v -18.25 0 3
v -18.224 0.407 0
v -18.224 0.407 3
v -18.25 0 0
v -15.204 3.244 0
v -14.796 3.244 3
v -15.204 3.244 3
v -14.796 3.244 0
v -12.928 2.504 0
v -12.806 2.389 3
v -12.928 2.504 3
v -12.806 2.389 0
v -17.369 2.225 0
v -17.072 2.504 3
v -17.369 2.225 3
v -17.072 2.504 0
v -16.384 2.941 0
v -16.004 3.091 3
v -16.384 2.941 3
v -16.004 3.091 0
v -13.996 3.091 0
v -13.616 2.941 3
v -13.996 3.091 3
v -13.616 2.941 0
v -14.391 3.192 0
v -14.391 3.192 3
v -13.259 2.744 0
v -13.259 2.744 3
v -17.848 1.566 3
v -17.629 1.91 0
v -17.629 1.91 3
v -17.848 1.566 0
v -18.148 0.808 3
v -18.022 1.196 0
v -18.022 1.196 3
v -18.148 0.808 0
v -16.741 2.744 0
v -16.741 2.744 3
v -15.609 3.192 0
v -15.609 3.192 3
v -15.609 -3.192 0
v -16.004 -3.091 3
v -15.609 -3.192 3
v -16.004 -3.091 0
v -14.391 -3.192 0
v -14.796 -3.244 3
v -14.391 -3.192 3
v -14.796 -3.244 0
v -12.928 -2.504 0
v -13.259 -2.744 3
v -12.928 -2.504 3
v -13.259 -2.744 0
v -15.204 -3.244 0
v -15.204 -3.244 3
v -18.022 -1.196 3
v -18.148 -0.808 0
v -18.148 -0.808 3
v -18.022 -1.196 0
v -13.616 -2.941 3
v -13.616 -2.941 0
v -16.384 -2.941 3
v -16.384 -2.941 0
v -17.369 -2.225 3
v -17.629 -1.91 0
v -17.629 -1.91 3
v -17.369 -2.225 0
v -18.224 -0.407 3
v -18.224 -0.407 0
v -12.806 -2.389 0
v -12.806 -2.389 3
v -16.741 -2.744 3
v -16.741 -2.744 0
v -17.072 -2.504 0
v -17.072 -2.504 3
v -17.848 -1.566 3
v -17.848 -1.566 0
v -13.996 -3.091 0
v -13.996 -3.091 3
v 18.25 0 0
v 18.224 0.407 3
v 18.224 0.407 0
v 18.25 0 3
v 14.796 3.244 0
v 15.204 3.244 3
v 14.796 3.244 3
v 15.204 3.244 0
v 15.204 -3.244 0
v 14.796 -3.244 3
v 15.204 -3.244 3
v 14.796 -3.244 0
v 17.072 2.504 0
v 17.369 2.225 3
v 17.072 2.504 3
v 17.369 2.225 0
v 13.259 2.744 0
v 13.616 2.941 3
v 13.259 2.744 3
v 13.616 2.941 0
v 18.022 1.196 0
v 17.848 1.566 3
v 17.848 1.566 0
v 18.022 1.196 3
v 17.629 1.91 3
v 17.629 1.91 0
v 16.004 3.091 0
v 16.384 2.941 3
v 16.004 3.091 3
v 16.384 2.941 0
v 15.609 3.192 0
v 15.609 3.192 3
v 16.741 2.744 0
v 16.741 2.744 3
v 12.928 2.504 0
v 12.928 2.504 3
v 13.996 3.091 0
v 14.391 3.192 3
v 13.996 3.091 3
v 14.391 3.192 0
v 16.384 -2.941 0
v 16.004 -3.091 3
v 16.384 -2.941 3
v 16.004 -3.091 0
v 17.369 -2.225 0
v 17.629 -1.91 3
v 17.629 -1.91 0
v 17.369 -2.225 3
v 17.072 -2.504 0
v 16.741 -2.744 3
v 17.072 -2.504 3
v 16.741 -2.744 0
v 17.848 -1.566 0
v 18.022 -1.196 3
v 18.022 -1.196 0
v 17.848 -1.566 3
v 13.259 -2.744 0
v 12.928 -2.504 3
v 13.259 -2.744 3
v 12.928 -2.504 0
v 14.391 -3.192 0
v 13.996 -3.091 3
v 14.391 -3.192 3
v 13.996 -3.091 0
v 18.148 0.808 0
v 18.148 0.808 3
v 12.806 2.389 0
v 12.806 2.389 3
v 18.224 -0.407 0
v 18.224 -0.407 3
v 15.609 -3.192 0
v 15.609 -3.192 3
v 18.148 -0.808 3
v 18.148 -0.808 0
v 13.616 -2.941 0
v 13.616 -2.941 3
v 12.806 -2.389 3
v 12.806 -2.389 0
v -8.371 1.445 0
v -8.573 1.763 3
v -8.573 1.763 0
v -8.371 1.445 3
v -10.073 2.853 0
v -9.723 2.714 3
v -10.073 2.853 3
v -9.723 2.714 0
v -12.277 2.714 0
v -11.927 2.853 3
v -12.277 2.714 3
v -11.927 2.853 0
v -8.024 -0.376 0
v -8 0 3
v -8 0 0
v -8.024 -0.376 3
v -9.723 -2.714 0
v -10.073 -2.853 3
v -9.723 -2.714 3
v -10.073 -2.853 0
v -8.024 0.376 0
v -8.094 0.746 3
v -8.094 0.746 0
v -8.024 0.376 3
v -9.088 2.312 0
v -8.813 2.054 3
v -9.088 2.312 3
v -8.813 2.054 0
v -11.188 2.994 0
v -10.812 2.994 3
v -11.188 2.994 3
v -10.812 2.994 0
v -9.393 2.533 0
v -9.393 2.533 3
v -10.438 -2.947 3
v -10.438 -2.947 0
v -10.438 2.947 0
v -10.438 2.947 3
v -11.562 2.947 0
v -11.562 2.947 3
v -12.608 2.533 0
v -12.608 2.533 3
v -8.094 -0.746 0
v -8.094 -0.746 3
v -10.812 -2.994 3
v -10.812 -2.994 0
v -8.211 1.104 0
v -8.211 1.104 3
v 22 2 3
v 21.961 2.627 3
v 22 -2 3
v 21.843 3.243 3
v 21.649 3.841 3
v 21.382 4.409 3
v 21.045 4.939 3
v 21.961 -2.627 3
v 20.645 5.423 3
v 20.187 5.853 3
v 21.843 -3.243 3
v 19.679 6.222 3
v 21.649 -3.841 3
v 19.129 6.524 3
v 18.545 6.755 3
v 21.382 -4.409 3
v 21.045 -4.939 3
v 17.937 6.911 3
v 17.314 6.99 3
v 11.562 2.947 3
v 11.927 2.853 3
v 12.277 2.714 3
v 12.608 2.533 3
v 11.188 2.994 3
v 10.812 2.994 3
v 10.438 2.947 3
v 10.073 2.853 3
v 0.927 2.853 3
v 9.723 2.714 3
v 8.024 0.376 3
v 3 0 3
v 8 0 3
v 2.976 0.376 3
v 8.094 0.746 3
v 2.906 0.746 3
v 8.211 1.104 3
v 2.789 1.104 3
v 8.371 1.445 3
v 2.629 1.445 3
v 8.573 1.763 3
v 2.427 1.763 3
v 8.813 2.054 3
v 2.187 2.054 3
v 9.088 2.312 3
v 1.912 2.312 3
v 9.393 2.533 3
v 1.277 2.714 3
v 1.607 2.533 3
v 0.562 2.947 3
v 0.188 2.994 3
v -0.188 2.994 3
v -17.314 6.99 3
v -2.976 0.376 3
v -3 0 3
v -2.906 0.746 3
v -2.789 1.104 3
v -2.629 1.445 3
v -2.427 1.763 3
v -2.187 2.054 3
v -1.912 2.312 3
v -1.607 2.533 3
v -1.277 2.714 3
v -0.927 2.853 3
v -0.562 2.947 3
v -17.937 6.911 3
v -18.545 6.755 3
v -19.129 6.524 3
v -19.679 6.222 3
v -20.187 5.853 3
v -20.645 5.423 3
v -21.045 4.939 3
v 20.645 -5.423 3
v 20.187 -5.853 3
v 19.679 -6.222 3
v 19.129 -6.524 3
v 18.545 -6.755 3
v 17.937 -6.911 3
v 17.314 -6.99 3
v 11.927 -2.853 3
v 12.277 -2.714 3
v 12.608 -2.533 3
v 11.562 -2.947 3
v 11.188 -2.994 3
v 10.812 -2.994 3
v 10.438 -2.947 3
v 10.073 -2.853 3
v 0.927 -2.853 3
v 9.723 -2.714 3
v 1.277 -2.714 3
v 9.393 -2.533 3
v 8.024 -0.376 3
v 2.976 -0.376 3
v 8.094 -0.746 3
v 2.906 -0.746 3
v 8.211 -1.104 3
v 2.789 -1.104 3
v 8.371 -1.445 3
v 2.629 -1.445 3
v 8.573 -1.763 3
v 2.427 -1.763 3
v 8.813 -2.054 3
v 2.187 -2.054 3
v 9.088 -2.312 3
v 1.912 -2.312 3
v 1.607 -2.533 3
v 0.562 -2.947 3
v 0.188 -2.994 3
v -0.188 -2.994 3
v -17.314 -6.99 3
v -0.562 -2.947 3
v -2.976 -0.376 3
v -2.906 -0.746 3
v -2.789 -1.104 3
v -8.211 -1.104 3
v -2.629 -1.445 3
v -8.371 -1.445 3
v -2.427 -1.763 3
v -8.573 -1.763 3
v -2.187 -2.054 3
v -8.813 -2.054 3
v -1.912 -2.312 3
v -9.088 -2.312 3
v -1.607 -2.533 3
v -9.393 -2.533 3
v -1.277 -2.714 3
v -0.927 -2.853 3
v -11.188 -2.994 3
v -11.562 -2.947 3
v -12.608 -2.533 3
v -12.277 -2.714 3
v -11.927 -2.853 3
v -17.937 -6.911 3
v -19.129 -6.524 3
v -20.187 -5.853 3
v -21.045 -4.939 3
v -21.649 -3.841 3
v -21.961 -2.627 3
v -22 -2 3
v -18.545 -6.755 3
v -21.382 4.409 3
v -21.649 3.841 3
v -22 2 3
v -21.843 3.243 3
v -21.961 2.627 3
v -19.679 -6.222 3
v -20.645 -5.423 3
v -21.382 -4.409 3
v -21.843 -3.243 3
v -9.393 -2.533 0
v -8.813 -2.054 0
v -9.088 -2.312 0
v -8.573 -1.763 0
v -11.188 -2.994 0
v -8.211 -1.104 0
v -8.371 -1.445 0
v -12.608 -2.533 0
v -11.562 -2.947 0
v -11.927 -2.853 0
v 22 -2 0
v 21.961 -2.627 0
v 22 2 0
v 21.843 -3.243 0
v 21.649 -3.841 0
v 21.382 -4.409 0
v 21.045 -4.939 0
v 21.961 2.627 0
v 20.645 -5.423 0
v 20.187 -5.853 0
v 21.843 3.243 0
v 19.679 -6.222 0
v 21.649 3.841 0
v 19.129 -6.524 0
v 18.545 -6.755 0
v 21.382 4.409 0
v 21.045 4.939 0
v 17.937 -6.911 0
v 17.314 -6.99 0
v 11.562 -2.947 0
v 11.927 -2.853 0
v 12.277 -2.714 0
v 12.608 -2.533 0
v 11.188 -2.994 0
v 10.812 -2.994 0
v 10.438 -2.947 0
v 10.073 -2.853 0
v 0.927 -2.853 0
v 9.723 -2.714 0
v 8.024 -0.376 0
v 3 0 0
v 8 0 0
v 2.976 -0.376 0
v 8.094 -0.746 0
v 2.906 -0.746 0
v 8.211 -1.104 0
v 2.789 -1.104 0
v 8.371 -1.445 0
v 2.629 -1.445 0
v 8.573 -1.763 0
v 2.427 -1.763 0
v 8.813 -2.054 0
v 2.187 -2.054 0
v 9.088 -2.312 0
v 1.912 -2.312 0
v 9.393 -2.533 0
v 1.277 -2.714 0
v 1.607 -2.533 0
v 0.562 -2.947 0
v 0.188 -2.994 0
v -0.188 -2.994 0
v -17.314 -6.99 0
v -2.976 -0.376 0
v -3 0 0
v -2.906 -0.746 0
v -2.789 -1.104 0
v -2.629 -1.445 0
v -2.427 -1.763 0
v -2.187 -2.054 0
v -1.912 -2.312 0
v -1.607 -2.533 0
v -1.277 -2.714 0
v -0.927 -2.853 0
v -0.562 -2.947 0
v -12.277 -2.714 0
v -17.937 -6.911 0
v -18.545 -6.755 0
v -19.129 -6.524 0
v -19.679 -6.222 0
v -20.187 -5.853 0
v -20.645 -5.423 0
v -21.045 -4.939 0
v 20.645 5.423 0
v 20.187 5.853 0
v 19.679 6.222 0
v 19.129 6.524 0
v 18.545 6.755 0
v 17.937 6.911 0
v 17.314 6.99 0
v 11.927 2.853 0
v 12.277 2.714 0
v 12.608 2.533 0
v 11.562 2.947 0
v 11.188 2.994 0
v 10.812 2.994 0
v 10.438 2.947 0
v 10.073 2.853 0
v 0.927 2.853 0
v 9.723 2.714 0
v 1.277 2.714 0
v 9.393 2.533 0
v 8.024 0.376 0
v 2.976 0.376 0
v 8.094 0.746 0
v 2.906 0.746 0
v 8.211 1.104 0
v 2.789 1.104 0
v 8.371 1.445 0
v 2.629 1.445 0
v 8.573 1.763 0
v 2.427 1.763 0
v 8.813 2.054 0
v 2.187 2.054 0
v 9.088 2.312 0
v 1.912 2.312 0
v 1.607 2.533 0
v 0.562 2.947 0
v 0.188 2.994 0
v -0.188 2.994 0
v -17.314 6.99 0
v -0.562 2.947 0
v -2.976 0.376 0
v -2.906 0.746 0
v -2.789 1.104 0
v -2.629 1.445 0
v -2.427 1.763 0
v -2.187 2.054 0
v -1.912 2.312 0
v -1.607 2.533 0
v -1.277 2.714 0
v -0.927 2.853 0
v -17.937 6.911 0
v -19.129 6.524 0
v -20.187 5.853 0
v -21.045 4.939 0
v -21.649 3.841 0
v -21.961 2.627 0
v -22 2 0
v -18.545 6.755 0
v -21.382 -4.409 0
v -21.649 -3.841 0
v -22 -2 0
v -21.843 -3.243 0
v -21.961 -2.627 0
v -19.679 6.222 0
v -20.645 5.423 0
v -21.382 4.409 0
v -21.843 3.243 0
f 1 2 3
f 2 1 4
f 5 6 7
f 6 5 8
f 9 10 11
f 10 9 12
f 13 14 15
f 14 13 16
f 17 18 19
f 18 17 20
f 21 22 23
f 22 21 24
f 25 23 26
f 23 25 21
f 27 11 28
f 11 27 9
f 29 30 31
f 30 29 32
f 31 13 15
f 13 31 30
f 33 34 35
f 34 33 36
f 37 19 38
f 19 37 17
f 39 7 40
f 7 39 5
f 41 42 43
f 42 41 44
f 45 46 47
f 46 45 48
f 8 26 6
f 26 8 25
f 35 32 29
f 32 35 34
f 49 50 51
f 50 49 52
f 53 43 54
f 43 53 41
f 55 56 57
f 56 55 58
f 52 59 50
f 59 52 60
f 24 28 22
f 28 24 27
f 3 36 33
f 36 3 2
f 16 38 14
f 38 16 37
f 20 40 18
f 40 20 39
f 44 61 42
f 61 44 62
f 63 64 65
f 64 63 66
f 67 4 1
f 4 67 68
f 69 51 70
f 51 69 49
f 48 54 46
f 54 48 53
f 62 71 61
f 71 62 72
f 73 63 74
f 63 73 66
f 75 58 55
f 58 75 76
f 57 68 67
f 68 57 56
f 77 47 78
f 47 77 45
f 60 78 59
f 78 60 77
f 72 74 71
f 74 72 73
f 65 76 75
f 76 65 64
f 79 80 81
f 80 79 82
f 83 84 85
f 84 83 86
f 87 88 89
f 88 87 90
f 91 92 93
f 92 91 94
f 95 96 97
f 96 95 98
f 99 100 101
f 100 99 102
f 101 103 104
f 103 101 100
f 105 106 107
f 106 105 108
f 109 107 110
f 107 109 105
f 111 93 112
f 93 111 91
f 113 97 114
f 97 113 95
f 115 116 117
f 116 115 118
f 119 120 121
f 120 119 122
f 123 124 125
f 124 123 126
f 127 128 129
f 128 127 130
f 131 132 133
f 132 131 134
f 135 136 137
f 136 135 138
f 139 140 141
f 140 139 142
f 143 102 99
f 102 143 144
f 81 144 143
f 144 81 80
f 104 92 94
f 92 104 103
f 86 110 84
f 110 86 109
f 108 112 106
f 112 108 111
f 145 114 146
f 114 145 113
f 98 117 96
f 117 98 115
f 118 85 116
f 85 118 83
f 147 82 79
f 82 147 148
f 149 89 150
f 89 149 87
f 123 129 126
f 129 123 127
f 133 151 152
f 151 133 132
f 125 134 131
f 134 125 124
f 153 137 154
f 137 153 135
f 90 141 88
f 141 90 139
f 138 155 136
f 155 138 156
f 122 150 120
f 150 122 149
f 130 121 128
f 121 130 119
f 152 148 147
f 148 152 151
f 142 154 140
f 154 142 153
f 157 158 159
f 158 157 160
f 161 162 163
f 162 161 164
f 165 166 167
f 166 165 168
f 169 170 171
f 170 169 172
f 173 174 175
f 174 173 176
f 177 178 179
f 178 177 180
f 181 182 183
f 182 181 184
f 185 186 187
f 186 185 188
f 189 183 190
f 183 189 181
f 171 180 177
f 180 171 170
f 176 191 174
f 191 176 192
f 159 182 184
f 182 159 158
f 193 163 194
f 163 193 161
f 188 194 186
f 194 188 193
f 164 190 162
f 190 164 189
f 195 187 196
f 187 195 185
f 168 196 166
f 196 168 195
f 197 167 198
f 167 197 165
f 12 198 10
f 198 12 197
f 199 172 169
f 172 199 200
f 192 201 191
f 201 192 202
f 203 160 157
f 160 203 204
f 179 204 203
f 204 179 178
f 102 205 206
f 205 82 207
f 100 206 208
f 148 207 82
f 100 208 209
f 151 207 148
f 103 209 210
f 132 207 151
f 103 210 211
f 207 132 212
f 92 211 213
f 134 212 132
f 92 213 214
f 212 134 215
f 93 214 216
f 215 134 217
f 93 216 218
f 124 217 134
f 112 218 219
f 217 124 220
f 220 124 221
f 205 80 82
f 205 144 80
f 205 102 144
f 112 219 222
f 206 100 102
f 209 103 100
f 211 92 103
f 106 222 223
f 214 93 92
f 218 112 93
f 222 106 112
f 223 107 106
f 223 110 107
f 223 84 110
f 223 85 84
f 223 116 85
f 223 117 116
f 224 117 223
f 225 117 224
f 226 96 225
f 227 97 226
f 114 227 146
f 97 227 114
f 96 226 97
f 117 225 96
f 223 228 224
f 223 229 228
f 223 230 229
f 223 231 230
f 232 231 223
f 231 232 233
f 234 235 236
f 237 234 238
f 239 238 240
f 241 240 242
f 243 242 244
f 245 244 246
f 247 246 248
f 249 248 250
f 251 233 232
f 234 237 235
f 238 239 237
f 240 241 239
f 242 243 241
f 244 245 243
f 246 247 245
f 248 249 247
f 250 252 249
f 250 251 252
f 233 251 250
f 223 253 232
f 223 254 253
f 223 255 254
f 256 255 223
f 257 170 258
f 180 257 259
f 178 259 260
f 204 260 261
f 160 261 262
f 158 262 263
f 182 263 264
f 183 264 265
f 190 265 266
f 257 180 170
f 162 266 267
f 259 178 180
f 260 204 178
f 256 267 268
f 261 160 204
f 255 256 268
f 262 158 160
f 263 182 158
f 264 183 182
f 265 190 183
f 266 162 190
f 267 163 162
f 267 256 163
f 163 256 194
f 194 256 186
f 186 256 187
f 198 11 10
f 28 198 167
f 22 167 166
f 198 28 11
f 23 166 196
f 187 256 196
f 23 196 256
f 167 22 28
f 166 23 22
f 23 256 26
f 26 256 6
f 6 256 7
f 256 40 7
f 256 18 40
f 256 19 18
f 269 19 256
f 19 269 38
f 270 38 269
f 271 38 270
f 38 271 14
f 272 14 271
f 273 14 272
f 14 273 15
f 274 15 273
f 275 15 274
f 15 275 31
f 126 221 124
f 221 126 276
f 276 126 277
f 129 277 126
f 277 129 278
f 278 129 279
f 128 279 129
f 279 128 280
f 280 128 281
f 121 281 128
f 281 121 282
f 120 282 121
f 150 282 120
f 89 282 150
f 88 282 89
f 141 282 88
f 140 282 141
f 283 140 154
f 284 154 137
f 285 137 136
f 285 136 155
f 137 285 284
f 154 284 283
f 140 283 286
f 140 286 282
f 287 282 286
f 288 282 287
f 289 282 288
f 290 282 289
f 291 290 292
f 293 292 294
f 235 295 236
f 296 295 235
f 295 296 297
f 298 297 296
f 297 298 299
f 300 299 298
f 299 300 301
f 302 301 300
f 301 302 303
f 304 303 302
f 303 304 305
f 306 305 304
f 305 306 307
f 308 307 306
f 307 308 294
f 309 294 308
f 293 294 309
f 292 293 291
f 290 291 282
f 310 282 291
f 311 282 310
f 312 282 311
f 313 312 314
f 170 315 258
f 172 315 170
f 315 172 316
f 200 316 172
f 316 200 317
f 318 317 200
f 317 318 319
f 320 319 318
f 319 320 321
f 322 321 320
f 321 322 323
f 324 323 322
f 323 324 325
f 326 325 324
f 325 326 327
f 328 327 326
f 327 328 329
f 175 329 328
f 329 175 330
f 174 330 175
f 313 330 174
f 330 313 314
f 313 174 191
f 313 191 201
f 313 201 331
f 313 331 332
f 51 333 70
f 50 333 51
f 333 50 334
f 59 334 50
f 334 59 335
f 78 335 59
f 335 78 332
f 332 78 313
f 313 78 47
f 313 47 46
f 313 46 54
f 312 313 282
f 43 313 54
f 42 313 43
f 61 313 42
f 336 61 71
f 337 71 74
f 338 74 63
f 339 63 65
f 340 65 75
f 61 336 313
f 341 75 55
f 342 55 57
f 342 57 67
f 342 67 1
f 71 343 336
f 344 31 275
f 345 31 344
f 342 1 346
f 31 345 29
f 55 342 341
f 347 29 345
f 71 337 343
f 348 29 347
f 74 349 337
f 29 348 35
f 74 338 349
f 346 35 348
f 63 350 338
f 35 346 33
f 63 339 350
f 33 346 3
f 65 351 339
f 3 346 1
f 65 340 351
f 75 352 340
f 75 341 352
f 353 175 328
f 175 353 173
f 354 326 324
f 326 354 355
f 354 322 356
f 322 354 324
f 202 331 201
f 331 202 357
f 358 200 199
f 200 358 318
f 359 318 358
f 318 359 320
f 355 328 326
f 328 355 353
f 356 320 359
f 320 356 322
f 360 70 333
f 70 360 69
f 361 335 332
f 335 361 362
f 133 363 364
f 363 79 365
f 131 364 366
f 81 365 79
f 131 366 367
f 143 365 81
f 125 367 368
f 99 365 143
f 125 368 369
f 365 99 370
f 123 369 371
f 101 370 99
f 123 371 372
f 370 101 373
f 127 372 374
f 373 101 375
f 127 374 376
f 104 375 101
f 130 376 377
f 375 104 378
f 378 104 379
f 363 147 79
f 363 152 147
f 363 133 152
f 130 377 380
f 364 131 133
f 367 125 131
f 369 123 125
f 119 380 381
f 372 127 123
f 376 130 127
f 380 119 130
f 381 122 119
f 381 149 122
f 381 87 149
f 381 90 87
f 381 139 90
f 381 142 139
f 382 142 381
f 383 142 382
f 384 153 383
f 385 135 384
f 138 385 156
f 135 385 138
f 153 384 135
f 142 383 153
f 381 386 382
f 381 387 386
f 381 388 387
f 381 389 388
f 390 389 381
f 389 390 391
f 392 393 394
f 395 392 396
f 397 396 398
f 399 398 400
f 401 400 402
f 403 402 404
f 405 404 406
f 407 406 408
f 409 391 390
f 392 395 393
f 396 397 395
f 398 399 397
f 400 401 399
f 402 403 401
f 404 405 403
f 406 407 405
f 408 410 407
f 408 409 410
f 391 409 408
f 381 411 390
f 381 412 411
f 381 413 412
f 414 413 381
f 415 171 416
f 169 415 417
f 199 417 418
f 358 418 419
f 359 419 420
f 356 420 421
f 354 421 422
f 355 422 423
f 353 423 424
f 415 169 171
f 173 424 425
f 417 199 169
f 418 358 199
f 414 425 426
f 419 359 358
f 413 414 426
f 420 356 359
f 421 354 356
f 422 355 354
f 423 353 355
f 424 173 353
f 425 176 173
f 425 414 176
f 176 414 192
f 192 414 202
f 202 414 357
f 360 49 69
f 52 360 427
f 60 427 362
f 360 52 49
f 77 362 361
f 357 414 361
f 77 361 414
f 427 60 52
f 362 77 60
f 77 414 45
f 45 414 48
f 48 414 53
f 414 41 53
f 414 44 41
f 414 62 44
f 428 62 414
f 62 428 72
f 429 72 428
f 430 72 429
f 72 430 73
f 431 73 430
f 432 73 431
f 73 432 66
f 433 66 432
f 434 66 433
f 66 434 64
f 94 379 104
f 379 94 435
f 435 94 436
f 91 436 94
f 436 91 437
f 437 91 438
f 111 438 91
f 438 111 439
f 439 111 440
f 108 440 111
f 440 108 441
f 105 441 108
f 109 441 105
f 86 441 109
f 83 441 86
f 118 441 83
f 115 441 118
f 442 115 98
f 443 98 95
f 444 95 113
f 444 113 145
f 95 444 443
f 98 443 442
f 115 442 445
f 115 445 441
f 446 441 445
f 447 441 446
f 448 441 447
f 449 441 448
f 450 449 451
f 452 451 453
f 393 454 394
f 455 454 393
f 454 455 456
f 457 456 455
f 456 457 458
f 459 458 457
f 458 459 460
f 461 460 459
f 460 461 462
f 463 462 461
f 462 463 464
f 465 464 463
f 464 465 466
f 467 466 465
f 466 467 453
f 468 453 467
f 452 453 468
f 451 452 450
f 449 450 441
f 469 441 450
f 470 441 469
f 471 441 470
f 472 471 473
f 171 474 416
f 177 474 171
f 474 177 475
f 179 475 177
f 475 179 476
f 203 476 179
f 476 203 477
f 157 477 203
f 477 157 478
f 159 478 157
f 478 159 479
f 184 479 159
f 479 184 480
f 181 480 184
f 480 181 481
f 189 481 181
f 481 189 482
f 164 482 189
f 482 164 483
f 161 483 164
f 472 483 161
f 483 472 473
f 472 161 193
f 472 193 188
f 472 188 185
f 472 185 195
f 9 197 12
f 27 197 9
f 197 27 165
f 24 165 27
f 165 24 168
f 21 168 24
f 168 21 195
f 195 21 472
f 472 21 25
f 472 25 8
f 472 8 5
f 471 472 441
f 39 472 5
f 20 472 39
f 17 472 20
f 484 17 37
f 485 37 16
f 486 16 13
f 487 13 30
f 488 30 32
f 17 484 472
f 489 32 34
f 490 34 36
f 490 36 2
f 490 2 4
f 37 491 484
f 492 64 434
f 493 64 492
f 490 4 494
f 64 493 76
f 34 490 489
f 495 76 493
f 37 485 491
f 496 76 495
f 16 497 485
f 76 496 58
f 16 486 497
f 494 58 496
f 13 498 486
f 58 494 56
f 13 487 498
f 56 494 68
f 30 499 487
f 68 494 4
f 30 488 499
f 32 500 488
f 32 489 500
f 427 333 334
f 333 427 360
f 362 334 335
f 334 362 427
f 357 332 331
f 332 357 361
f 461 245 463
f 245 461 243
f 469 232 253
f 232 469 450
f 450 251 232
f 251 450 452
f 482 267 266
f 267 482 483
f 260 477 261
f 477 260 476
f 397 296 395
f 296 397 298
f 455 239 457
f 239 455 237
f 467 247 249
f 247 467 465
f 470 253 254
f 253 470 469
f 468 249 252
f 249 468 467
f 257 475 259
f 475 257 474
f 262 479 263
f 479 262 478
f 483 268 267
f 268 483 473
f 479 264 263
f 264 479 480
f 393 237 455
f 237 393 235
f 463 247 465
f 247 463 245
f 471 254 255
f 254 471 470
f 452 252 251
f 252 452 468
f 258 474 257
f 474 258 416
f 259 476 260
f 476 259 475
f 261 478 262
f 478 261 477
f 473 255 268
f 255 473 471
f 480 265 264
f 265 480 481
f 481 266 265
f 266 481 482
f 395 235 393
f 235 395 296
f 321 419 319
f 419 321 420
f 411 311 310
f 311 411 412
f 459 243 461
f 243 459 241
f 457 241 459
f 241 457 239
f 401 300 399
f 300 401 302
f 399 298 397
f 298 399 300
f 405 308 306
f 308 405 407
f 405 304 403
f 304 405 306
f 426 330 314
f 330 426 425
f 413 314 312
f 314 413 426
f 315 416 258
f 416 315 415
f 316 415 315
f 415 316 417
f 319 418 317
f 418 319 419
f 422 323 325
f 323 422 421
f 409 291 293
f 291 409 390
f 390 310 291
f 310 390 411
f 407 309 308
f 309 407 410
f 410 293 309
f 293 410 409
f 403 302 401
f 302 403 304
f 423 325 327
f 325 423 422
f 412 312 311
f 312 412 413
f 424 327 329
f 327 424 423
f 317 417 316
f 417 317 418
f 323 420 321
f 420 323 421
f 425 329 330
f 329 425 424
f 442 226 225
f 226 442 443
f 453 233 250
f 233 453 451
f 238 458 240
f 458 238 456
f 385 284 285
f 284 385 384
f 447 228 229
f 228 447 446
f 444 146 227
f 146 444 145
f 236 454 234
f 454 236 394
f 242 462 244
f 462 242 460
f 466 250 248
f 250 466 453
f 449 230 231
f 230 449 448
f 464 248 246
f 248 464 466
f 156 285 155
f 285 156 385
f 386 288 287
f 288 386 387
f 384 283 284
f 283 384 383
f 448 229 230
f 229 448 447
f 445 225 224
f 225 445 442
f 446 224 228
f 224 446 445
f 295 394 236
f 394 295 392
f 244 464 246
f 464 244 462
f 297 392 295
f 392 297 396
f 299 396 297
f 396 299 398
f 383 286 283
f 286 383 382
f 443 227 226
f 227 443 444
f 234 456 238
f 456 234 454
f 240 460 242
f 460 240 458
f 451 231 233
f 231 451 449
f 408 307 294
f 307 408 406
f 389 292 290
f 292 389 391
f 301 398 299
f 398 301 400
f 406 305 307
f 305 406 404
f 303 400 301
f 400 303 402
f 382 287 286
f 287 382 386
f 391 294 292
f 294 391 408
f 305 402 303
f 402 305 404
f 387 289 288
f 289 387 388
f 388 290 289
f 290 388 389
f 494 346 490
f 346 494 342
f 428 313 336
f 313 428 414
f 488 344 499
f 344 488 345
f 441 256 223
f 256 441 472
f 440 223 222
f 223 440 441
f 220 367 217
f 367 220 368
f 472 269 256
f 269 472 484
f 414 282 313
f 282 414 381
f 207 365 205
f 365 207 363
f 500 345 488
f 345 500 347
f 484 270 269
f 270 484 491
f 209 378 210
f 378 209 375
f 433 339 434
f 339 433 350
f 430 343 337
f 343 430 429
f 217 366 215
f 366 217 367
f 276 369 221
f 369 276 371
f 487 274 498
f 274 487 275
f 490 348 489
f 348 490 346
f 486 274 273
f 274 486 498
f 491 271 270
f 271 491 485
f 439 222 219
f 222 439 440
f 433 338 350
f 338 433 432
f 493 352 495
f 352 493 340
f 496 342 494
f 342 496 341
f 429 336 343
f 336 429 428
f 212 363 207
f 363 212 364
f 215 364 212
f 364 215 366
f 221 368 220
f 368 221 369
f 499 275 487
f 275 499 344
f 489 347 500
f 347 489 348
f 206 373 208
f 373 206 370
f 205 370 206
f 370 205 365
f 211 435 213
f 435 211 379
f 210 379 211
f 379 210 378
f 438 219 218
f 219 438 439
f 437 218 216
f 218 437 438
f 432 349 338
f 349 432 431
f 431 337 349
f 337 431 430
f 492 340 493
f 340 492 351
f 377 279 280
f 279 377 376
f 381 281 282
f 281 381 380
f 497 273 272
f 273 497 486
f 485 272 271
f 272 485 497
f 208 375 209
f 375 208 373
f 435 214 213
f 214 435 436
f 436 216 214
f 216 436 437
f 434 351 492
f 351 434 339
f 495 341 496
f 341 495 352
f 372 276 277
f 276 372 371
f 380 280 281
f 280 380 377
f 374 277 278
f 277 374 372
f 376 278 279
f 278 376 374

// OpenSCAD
$fn = 50;


difference() {
	union() {
		hull() {
			translate(v = [-17.0000000000, 2.0000000000, 0]) {
				cylinder(h = 3, r = 5);
			}
			translate(v = [17.0000000000, 2.0000000000, 0]) {
				cylinder(h = 3, r = 5);
			}
			translate(v = [-17.0000000000, -2.0000000000, 0]) {
				cylinder(h = 3, r = 5);
			}
			translate(v = [17.0000000000, -2.0000000000, 0]) {
				cylinder(h = 3, r = 5);
			}
		}
	}
	union() {
		#translate(v = [-15.0000000000, 0.0000000000, -100.0000000000]) {
			cylinder(h = 200, r = 3.2500000000);
		}
		#translate(v = [-15.0000000000, 0.0000000000, -100.0000000000]) {
			cylinder(h = 200, r = 3.2500000000);
		}
		#translate(v = [15.0000000000, 0.0000000000, -100.0000000000]) {
			cylinder(h = 200, r = 3.2500000000);
		}
		#translate(v = [15.0000000000, 0.0000000000, -100.0000000000]) {
			cylinder(h = 200, r = 3.2500000000);
		}
		#translate(v = [-11.0000000000, 0, 0]) {
			cylinder(h = 3, r = 3.0000000000);
		}
		#cylinder(h = 3, r = 3.0000000000);
		#translate(v = [11.0000000000, 0, 0]) {
			cylinder(h = 3, r = 3.0000000000);
		}
	}
}
